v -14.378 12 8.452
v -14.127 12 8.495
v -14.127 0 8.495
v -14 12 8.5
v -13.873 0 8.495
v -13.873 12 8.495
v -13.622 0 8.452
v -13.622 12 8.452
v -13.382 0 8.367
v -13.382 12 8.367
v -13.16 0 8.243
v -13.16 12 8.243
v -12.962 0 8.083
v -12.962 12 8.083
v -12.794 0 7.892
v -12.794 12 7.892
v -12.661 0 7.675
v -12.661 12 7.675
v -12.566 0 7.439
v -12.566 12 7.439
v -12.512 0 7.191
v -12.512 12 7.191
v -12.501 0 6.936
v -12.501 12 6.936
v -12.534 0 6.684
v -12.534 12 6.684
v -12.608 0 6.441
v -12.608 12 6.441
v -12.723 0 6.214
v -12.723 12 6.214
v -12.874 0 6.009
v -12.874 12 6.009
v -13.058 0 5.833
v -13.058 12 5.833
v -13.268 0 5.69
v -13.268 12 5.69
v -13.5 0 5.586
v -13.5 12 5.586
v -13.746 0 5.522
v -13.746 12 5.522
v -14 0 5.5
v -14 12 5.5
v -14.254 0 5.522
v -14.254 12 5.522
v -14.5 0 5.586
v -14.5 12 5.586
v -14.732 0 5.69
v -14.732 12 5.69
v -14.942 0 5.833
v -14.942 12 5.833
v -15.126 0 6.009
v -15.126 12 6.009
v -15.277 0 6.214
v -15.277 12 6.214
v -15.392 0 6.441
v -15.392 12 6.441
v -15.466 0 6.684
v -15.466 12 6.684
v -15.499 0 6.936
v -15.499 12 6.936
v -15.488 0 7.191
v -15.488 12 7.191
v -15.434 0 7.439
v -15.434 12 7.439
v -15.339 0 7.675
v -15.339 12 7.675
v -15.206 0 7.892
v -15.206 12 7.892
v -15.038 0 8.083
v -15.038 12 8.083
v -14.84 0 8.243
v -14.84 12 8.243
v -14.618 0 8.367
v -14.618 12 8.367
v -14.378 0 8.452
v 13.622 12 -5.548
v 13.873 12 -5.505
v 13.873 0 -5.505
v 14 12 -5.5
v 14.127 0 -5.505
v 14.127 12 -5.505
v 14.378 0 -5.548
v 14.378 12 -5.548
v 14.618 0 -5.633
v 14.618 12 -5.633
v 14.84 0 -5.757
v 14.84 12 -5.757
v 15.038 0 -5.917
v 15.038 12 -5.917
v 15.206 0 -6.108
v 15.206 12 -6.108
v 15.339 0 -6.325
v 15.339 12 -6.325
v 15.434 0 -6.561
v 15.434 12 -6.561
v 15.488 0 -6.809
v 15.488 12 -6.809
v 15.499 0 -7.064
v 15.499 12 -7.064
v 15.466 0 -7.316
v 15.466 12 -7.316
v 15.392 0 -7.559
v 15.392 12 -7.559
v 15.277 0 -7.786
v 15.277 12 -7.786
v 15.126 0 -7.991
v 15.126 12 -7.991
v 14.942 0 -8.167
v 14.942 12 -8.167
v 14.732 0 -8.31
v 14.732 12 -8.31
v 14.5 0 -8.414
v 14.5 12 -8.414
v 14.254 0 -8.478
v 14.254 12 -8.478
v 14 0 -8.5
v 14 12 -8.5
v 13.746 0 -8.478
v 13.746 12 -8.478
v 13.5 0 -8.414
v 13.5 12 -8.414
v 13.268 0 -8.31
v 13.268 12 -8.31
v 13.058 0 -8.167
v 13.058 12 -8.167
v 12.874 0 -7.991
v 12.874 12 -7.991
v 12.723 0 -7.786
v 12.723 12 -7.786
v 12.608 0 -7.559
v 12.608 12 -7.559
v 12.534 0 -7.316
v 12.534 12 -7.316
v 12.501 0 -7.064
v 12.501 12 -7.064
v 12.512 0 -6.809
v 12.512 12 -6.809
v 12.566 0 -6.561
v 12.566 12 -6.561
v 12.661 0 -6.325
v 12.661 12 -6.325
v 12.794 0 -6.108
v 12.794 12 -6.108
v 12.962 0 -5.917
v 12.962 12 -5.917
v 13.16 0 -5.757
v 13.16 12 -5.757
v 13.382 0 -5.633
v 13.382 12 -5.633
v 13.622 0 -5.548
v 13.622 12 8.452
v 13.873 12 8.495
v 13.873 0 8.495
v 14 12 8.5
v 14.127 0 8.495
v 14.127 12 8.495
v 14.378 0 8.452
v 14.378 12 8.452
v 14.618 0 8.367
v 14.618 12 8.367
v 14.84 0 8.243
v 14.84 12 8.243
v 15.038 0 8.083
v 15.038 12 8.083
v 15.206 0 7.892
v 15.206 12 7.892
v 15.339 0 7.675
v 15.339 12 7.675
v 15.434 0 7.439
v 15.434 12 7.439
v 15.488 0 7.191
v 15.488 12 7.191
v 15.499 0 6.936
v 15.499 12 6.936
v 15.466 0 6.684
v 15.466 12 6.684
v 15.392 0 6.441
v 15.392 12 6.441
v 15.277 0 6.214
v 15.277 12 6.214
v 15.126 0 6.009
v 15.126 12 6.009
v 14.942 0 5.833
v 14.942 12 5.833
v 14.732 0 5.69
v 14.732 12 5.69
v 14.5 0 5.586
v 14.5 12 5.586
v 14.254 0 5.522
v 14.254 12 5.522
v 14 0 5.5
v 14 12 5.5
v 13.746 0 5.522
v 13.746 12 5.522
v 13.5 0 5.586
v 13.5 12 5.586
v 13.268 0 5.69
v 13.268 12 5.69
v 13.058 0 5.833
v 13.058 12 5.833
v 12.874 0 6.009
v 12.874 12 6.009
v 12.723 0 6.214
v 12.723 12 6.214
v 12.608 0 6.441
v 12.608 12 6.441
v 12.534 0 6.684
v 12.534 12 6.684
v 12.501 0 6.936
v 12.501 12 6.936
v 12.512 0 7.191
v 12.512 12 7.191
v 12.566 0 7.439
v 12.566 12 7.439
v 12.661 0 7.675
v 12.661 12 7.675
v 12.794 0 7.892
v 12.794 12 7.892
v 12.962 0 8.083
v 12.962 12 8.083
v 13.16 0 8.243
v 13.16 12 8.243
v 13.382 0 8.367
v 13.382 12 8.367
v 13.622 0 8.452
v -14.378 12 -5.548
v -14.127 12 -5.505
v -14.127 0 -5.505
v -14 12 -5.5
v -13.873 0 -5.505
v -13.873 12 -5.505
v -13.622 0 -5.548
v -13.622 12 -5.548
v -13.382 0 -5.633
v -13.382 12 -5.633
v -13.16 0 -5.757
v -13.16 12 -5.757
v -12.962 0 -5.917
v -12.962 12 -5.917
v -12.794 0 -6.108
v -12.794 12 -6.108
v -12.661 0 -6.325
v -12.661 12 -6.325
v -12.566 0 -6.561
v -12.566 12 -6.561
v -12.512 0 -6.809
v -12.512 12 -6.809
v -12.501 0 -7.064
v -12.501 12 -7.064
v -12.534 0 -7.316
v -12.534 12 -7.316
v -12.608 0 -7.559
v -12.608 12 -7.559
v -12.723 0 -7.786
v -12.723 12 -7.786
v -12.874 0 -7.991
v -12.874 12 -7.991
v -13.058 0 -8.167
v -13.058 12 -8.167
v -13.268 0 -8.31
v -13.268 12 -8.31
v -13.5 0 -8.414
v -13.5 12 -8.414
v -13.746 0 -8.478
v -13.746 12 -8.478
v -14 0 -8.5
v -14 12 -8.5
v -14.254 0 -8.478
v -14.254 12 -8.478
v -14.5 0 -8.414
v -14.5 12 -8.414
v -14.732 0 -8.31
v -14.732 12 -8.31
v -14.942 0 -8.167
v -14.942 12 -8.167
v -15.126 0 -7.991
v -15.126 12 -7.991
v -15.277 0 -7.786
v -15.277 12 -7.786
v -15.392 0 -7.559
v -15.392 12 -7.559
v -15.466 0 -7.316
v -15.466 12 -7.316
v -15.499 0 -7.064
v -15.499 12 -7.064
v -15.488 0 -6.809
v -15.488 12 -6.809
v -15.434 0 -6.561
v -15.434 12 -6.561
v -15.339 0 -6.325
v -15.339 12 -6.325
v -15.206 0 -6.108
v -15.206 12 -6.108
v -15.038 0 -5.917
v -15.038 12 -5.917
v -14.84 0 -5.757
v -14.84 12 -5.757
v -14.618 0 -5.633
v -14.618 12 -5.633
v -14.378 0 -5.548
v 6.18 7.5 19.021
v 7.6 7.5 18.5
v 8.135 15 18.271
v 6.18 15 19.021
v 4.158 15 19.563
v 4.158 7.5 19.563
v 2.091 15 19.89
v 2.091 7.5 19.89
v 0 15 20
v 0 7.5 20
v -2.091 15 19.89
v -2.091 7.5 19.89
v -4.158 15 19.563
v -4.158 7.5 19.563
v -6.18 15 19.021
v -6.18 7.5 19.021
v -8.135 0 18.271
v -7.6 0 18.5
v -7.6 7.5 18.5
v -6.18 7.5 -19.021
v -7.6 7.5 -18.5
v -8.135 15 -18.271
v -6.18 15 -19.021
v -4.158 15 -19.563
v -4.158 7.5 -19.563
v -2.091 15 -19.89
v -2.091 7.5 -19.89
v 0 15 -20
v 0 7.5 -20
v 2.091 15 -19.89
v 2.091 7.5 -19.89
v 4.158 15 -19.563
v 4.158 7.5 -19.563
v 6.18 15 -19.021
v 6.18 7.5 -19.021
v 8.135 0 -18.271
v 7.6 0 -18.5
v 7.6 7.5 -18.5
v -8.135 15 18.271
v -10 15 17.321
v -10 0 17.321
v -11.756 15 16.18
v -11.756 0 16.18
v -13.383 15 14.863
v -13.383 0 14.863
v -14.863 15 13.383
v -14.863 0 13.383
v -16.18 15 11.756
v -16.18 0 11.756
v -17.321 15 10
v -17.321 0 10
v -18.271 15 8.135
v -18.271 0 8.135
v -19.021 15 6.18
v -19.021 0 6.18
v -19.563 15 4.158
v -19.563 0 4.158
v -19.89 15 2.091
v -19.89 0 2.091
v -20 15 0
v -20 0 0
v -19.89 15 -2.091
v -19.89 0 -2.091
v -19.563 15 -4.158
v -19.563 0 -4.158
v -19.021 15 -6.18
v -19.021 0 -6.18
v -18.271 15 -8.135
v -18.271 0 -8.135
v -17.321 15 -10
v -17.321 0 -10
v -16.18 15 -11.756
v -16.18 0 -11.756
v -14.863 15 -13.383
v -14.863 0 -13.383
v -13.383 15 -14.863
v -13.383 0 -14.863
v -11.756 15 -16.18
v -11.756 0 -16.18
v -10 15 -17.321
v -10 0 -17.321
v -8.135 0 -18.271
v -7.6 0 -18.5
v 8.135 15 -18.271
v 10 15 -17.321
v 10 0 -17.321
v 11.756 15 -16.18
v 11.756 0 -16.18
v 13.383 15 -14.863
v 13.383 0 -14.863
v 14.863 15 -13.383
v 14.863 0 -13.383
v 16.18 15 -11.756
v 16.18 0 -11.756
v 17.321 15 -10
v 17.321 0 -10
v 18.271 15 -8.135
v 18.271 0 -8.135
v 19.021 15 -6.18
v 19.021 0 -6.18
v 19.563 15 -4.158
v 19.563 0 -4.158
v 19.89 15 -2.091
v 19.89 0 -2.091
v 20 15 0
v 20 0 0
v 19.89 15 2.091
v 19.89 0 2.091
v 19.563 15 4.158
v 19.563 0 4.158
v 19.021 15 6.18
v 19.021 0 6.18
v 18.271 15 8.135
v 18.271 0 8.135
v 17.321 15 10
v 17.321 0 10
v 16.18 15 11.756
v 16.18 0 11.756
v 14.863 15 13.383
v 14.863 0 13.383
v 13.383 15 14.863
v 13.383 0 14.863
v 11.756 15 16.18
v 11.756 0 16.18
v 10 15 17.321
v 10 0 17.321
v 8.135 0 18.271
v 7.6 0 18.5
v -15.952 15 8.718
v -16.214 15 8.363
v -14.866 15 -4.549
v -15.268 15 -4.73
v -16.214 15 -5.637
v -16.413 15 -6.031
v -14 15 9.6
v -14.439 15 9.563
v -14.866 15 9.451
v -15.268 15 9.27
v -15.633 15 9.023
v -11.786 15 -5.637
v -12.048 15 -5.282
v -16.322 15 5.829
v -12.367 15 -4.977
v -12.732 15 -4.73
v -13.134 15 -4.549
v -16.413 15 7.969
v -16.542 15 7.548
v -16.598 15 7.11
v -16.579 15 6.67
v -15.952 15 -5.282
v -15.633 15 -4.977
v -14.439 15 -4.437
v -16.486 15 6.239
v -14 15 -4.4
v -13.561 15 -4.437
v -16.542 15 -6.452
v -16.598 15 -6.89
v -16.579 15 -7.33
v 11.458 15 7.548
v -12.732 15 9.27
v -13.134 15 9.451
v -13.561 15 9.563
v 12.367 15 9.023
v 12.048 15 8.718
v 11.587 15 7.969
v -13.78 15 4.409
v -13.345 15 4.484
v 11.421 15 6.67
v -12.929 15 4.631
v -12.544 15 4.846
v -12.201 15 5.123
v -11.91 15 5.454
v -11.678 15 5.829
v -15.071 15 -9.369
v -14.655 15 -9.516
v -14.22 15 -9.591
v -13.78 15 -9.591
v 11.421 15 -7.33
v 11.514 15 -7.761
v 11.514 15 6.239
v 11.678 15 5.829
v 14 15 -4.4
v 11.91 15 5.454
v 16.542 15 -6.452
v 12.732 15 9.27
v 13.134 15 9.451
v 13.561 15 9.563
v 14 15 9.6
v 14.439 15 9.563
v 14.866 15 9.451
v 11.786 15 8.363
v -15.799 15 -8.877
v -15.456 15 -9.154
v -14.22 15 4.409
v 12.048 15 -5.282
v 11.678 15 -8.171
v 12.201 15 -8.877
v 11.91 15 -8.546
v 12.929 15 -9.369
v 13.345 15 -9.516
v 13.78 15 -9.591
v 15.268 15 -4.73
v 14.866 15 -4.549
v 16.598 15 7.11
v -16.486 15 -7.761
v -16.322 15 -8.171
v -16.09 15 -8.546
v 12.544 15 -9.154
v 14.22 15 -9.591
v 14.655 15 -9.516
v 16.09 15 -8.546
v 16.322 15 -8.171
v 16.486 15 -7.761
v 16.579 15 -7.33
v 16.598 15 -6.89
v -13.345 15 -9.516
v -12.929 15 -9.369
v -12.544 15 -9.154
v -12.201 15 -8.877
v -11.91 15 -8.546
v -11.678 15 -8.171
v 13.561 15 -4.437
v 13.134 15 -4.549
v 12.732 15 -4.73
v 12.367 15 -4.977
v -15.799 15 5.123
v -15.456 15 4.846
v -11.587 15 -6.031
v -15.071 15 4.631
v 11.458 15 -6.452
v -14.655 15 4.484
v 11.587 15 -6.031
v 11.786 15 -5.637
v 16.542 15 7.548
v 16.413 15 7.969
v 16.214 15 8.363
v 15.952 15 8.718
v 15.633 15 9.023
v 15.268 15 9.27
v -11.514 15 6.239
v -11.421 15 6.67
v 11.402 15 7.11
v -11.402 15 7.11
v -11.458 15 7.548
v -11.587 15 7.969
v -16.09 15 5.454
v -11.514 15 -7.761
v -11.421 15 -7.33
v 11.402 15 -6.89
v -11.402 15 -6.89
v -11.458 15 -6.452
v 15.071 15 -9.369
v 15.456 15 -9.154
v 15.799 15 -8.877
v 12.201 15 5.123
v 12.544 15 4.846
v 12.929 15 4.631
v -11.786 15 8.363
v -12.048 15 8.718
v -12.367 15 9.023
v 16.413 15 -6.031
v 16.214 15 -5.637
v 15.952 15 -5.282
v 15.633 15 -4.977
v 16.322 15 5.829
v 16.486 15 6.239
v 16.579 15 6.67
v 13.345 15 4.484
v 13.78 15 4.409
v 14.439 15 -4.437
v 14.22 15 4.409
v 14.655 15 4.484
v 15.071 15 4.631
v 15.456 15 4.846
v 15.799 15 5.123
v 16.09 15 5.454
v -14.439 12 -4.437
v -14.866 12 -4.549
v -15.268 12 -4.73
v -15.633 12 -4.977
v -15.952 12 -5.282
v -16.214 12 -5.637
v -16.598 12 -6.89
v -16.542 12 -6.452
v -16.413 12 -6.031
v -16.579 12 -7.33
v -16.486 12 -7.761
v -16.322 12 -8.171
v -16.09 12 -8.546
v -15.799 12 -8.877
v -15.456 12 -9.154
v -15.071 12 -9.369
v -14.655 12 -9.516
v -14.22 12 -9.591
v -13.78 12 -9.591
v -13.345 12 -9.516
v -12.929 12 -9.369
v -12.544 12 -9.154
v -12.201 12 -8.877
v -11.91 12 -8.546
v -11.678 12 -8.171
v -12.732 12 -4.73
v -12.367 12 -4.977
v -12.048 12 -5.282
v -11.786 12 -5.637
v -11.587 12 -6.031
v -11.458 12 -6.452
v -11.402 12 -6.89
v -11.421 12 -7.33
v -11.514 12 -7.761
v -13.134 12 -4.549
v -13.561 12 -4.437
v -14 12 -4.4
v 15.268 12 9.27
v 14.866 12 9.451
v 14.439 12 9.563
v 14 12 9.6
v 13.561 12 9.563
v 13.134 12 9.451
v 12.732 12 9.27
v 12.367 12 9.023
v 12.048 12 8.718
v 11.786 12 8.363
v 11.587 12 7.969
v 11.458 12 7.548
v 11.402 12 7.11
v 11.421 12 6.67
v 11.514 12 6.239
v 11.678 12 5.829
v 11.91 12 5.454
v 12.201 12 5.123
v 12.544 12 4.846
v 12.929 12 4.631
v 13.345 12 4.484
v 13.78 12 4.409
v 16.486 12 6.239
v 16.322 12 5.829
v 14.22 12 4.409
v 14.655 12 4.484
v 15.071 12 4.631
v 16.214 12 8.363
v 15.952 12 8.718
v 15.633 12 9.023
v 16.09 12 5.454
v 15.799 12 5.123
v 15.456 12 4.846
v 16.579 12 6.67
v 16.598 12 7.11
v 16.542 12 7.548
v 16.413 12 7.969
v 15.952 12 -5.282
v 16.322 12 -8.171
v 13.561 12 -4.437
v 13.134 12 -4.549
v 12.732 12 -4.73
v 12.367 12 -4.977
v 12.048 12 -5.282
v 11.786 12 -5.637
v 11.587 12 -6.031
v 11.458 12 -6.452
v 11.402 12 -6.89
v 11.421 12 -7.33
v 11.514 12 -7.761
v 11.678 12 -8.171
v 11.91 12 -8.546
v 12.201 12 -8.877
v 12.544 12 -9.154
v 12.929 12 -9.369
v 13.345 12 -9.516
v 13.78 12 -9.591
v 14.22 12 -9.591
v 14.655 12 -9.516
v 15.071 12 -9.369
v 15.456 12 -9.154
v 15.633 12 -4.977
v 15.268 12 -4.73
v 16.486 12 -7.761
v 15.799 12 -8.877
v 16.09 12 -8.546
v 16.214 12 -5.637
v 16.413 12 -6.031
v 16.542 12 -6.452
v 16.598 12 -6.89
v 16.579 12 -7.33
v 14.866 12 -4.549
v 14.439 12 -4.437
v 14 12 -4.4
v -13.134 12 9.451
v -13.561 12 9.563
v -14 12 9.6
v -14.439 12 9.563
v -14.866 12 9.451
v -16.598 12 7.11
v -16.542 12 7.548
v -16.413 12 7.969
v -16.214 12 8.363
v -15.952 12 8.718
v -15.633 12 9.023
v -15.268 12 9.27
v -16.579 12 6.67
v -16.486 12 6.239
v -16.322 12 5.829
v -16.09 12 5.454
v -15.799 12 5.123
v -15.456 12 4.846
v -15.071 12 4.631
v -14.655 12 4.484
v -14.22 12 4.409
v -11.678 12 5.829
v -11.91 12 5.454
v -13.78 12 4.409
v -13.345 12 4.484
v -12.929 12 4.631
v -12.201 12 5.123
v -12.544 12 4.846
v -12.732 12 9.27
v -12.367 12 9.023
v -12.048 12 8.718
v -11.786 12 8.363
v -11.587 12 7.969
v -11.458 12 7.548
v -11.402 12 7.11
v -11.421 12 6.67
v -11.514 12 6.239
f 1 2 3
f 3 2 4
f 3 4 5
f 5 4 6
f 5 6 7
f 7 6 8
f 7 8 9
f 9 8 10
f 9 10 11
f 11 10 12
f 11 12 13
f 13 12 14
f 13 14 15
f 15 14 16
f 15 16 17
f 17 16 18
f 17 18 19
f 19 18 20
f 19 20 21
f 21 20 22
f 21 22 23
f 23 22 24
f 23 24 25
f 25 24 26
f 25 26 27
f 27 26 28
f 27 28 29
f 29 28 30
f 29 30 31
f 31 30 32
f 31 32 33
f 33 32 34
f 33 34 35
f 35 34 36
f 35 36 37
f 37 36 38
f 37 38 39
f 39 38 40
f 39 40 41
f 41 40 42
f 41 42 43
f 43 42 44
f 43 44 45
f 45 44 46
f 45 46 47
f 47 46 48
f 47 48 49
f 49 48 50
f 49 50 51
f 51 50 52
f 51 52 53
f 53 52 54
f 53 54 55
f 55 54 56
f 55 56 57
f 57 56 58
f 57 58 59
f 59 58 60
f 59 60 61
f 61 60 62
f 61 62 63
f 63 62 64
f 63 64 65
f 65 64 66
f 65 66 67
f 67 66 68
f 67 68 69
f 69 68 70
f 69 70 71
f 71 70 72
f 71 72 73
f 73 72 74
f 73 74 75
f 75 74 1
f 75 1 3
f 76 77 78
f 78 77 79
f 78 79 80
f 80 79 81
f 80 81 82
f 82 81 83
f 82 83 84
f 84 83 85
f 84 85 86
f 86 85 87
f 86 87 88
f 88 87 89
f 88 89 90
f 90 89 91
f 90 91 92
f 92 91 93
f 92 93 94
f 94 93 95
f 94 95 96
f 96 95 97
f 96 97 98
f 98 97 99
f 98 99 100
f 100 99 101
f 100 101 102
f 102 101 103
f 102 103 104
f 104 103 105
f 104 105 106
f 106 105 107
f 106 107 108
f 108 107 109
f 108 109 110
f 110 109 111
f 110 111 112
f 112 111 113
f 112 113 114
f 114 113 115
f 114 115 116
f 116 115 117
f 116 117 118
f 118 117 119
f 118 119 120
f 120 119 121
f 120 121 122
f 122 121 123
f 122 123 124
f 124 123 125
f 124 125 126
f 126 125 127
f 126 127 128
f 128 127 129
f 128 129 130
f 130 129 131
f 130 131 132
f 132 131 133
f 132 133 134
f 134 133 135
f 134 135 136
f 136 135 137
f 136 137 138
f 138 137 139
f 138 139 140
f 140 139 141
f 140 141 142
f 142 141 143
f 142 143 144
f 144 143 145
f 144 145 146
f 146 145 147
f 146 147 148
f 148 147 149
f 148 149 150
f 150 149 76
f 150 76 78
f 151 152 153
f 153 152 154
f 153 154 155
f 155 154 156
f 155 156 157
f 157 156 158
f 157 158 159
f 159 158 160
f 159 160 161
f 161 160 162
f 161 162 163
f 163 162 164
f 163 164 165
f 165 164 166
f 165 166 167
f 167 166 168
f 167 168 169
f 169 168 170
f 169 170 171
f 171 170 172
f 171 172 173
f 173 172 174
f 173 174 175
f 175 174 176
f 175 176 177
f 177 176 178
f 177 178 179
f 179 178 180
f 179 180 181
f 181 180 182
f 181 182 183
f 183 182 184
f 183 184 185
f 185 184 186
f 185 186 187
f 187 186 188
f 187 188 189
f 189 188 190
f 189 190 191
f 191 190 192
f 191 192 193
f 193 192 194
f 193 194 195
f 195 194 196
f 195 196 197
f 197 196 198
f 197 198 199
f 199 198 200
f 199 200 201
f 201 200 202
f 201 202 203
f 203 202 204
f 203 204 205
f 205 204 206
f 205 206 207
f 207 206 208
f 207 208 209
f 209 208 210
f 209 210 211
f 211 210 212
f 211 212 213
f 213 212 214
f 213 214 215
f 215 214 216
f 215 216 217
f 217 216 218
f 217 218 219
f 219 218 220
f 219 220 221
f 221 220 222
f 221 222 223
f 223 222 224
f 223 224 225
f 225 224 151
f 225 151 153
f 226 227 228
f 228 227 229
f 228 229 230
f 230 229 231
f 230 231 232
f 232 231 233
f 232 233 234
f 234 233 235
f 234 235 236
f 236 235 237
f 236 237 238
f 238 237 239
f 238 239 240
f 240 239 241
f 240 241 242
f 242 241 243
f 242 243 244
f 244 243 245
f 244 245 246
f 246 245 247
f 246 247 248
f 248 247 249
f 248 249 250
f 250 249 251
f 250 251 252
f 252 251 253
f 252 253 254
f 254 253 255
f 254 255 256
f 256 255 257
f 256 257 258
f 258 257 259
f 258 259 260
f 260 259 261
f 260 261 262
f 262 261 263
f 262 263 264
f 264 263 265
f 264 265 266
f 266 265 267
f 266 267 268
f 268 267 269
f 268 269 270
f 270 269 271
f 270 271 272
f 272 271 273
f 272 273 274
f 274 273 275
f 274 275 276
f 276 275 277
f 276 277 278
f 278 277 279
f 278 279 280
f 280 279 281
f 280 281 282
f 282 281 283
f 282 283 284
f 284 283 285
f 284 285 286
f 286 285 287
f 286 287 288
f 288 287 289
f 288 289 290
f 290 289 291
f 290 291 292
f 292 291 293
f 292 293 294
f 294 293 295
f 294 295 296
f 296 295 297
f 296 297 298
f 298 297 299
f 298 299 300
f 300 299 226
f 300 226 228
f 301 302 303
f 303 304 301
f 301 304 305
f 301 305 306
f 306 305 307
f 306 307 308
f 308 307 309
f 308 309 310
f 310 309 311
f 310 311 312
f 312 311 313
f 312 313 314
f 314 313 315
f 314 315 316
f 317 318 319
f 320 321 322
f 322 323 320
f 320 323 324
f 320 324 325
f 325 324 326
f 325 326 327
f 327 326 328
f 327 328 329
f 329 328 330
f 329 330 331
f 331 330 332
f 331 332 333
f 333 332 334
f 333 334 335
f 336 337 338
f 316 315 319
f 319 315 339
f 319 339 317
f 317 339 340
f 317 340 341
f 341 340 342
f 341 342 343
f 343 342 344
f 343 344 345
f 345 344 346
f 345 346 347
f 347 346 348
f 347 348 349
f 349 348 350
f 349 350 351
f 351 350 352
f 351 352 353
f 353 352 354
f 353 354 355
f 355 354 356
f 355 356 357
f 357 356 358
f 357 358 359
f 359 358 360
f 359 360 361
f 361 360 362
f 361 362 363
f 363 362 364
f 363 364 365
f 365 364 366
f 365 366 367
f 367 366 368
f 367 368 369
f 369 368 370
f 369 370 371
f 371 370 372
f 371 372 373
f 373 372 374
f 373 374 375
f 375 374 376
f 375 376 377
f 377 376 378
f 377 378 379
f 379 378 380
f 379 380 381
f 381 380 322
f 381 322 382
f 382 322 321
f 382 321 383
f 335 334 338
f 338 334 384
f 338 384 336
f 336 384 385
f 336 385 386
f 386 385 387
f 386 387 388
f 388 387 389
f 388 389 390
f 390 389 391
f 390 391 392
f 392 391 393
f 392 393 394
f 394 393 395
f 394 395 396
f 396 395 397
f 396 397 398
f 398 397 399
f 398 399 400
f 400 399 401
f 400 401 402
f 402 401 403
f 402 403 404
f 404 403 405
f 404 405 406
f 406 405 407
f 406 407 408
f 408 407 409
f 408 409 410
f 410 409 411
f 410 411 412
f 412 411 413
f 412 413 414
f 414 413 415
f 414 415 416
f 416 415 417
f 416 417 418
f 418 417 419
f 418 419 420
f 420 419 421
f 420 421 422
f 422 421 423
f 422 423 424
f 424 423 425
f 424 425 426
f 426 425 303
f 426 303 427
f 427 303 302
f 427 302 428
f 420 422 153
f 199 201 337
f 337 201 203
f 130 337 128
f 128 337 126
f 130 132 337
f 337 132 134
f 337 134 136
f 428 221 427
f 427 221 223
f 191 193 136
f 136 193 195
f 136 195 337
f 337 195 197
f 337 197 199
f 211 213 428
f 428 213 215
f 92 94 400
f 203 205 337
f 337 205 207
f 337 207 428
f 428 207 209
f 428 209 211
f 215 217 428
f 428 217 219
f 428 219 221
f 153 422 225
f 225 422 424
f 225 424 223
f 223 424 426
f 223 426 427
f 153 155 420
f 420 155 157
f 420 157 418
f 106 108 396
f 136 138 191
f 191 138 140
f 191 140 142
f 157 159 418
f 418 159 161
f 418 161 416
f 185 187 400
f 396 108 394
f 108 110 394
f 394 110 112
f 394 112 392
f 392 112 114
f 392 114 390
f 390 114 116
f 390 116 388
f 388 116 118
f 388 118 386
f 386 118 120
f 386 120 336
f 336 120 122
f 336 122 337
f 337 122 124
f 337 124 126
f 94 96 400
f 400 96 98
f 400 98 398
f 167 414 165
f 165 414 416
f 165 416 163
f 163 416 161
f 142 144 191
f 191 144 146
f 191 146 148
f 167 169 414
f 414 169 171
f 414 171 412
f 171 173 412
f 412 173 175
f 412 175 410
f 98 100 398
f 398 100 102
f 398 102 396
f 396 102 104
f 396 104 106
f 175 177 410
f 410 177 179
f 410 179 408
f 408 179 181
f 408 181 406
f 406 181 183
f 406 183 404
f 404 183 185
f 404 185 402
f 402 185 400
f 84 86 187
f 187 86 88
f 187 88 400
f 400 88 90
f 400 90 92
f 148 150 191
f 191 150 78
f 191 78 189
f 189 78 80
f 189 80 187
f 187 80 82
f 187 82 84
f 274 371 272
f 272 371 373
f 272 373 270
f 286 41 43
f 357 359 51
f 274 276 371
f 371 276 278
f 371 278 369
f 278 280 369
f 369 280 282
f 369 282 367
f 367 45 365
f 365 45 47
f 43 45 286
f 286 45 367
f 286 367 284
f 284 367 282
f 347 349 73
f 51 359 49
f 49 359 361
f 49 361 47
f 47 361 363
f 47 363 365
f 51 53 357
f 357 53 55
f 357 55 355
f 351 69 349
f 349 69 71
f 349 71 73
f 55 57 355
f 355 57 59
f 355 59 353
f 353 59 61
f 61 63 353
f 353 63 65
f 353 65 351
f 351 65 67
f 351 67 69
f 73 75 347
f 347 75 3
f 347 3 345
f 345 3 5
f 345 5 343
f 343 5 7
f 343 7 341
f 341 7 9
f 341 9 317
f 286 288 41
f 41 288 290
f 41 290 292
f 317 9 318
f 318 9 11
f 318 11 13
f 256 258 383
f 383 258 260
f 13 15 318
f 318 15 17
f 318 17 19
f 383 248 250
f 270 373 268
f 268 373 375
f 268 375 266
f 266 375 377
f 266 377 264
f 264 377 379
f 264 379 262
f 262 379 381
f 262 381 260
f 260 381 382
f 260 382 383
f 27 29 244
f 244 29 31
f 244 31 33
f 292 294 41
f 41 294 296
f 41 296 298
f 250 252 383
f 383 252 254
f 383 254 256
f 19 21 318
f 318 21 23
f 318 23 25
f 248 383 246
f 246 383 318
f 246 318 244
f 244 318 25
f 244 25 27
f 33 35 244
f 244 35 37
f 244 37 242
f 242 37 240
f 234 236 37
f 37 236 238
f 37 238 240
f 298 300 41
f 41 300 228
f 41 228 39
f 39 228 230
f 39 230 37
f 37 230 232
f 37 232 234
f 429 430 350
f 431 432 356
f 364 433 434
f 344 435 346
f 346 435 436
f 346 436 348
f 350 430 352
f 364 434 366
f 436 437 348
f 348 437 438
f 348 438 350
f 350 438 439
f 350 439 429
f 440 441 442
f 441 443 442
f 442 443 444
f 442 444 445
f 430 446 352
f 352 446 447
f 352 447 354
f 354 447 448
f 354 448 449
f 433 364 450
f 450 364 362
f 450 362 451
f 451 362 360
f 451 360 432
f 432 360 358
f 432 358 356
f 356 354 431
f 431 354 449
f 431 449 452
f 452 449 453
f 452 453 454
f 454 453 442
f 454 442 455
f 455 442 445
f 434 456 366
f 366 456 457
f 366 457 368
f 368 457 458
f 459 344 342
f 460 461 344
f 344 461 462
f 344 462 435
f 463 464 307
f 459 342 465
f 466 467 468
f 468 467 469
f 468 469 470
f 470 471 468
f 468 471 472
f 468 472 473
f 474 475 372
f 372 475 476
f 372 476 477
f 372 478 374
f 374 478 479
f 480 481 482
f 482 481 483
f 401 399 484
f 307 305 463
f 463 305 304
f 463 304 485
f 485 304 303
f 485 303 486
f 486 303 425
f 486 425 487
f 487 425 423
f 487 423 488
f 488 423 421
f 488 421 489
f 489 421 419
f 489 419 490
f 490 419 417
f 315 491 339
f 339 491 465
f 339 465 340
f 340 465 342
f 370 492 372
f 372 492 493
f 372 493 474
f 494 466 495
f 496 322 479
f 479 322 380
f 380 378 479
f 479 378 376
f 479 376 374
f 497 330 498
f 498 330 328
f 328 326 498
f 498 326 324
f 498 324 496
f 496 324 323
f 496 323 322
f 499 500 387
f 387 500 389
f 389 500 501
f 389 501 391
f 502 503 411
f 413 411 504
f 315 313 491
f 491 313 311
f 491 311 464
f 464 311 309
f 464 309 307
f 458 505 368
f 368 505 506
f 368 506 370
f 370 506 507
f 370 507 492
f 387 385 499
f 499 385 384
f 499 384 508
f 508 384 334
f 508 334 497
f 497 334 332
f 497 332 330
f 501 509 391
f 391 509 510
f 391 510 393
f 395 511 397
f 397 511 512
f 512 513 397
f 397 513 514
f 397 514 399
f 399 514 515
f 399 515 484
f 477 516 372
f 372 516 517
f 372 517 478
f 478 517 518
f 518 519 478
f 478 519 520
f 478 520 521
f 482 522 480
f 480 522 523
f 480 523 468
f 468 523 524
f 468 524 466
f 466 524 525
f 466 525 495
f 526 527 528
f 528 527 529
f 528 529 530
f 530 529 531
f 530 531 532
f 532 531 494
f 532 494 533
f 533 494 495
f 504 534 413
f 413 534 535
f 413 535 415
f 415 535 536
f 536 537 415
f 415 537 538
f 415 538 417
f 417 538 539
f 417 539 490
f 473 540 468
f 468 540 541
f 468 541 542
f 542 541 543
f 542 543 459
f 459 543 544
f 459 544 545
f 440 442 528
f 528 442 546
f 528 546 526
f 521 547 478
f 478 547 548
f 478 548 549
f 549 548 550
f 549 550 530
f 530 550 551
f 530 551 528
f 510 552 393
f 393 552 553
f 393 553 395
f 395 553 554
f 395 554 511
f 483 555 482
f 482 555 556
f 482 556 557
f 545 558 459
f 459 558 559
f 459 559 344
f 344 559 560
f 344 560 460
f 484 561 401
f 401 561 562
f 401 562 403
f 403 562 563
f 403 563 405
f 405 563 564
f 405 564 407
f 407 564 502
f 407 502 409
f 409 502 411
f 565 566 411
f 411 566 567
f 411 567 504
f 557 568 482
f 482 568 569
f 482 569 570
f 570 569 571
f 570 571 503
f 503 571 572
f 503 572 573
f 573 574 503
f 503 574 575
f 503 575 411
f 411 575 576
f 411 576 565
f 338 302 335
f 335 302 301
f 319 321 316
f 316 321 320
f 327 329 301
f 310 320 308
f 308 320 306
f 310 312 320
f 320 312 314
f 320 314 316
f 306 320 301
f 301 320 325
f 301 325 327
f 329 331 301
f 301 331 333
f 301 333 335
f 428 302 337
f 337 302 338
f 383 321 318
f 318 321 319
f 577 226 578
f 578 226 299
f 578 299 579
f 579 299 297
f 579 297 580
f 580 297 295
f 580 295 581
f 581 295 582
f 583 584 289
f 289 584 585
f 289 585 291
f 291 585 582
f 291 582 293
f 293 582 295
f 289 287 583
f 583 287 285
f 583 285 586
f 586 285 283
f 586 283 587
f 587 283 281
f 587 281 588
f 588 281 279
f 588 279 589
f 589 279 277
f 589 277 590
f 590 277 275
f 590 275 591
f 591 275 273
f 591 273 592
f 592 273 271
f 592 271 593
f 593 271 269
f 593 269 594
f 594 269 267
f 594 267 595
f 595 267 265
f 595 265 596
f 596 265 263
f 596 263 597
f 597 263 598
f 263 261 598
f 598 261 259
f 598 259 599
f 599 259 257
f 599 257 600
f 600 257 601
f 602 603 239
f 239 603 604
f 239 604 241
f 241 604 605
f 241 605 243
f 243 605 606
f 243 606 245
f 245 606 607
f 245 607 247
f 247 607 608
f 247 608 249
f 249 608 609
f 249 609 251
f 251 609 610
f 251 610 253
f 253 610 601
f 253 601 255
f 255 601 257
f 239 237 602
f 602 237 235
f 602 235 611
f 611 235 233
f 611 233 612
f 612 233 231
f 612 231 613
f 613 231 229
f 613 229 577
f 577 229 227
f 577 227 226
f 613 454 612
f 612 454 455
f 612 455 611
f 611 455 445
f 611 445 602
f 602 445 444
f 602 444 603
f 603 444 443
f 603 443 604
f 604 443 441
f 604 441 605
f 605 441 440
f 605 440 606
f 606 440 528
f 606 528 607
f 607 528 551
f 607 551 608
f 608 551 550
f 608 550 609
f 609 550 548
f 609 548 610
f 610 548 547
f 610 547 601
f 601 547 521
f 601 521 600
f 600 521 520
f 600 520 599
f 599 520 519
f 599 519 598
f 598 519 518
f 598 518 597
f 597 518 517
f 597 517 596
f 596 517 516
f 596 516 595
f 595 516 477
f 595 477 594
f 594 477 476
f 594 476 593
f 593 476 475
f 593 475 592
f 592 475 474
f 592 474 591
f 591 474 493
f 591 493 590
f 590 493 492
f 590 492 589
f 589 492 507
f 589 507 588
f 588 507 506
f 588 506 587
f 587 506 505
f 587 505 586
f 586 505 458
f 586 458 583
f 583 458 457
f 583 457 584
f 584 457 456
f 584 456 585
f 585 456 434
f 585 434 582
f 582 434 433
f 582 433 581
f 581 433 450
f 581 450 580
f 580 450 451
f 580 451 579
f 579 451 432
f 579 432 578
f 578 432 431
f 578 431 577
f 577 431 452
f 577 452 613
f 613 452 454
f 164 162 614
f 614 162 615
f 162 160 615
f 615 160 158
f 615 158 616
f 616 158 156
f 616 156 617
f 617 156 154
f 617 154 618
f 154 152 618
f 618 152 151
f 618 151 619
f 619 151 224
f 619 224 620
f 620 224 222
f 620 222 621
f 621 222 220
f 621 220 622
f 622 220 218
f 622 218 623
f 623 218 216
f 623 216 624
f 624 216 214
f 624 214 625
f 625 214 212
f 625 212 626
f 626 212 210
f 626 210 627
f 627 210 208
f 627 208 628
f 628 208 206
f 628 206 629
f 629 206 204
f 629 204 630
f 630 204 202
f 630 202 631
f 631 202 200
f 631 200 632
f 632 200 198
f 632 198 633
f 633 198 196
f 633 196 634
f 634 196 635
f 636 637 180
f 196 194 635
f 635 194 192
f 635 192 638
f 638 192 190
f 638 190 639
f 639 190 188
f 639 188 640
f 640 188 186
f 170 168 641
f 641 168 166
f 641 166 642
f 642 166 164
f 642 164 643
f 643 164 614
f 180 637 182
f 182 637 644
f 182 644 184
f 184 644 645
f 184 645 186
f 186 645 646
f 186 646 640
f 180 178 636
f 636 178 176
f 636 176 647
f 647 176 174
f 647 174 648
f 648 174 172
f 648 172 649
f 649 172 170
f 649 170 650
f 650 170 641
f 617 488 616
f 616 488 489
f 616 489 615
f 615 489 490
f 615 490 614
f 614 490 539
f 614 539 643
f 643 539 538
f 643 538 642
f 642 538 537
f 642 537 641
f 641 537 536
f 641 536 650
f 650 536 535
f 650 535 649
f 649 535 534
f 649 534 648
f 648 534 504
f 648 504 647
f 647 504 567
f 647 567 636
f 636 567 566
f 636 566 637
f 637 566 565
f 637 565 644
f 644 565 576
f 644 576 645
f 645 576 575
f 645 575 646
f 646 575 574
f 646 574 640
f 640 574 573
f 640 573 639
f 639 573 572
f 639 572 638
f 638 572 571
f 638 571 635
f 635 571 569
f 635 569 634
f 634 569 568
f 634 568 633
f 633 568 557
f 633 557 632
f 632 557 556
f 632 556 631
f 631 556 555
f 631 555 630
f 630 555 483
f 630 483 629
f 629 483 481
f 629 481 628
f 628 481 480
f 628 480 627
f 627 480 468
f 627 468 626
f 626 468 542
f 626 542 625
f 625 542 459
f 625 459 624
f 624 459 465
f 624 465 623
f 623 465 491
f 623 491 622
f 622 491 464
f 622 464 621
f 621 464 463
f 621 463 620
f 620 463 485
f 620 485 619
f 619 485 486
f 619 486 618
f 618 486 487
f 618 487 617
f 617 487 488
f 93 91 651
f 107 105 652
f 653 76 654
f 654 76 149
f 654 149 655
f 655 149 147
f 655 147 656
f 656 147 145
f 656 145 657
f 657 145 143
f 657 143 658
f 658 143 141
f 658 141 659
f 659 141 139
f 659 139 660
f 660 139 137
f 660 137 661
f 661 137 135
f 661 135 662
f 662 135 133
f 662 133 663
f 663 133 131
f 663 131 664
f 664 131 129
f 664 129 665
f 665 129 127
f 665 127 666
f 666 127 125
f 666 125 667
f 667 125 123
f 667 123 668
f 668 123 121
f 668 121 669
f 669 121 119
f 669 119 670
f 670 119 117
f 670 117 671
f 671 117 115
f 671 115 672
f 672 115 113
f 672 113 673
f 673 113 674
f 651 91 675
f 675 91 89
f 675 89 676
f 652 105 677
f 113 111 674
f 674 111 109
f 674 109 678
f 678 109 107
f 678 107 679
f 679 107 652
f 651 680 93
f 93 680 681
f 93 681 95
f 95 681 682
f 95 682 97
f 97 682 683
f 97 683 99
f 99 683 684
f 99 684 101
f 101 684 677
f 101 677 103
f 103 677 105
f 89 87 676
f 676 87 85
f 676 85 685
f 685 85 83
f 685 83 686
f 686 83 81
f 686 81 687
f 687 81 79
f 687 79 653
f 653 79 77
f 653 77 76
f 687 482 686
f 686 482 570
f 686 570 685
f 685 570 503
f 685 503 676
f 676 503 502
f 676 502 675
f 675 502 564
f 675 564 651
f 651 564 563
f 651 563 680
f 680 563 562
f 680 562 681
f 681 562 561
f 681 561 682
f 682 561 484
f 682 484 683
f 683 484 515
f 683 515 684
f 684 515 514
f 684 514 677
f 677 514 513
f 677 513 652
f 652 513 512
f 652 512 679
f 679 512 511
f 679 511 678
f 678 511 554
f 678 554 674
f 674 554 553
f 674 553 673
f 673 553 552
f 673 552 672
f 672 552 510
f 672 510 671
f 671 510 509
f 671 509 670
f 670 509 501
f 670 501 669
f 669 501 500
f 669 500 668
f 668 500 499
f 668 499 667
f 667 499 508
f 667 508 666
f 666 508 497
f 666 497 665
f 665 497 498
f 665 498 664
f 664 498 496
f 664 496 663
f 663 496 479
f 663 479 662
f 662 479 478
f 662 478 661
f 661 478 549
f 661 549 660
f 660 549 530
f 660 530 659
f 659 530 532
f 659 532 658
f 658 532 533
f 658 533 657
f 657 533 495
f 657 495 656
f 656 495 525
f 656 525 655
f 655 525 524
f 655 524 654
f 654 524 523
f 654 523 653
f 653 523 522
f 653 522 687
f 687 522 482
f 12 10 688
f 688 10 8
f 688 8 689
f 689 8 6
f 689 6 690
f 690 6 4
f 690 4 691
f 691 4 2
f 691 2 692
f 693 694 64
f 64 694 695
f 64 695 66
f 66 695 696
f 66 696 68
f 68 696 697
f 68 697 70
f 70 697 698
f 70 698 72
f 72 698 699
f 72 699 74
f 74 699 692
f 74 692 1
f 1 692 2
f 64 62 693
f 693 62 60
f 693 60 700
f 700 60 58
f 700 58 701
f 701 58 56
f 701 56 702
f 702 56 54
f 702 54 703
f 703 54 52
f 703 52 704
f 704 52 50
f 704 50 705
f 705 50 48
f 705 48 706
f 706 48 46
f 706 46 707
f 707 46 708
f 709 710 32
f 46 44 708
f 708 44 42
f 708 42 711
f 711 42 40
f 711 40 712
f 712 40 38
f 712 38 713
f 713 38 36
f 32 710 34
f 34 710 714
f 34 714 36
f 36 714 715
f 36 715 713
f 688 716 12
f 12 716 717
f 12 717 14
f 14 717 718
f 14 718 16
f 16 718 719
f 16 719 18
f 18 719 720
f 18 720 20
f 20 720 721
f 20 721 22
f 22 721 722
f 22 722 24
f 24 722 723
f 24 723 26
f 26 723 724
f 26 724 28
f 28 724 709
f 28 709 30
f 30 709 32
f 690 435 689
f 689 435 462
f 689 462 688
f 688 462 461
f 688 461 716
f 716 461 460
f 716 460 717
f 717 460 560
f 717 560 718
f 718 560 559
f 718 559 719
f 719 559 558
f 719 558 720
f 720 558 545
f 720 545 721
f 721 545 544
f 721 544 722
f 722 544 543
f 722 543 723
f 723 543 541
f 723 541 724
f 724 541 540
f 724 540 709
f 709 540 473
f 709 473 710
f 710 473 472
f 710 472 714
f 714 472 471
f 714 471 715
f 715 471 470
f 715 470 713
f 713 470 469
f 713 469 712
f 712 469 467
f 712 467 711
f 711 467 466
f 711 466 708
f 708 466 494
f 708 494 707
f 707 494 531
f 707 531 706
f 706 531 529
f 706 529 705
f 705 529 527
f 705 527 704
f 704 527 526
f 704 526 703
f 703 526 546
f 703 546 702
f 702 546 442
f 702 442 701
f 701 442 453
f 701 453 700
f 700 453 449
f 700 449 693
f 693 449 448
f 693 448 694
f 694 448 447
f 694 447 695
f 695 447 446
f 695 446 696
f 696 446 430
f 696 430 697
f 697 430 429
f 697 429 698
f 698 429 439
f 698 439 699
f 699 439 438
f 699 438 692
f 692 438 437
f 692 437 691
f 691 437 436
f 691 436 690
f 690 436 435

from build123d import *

# Parameters (mm, degrees)
SKETCH1_R               = 20
BOSS_EXTRUDE1_DEPTH     = 15
CUT_EXTRUDE1_DEPTH      = 25
CUT_EXTRUDE1_DEPTH_BACK = 25
SKETCH2_W               = 15.2
SKETCH2_H               = 7.5
CUT_EXTRUDE2_REACH      = 34.016
SKETCH3_R               = 1.5
SKETCH4_R               = 2.6
CUT_EXTRUDE3_DEPTH      = 3


with BuildPart() as part:
    # Sketch1 → Boss-Extrude1 (new body)
    with BuildSketch(Plane(origin=(0, 0, 0), x_dir=(1, 0, 0), z_dir=(0, 1, 0))):
        Circle(SKETCH1_R)
    extrude(amount=BOSS_EXTRUDE1_DEPTH)

    # Sketch2 → Cut-Extrude1 (cut, two sides: drawn at the far end of the back side and taken through both)
    with BuildSketch(Plane.XY.offset(-CUT_EXTRUDE1_DEPTH_BACK)):
        with Locations((0, 3.75)):
            Rectangle(SKETCH2_W, SKETCH2_H)
    extrude(amount=CUT_EXTRUDE1_DEPTH + CUT_EXTRUDE1_DEPTH_BACK, mode=Mode.SUBTRACT)

    # Sketch3 → Cut-Extrude2 (cut, up to next)
    with BuildSketch(Plane(origin=(0, 0, 0), x_dir=(-1, 0, 0), z_dir=(0, -1, 0)), mode=Mode.PRIVATE) as cut_extrude2_sk1:
        with Locations((14, -7)):
            Circle(SKETCH3_R)
    cut_extrude2_tool1 = extrude(cut_extrude2_sk1.sketch, amount=-CUT_EXTRUDE2_REACH, mode=Mode.PRIVATE) & part.part
    # Sketch3 → Cut-Extrude2 (cut, up to next)
    with BuildSketch(Plane(origin=(0, 0, 0), x_dir=(-1, 0, 0), z_dir=(0, -1, 0)), mode=Mode.PRIVATE) as cut_extrude2_sk2:
        with Locations((14, 7)):
            Circle(SKETCH3_R)
    cut_extrude2_tool2 = extrude(cut_extrude2_sk2.sketch, amount=-CUT_EXTRUDE2_REACH, mode=Mode.PRIVATE) & part.part
    # Sketch3 → Cut-Extrude2 (cut, up to next)
    with BuildSketch(Plane(origin=(0, 0, 0), x_dir=(-1, 0, 0), z_dir=(0, -1, 0)), mode=Mode.PRIVATE) as cut_extrude2_sk3:
        with Locations((-14, -7)):
            Circle(SKETCH3_R)
    cut_extrude2_tool3 = extrude(cut_extrude2_sk3.sketch, amount=-CUT_EXTRUDE2_REACH, mode=Mode.PRIVATE) & part.part
    # Sketch3 → Cut-Extrude2 (cut, up to next)
    with BuildSketch(Plane(origin=(0, 0, 0), x_dir=(-1, 0, 0), z_dir=(0, -1, 0)), mode=Mode.PRIVATE) as cut_extrude2_sk4:
        with Locations((-14, 7)):
            Circle(SKETCH3_R)
    cut_extrude2_tool4 = extrude(cut_extrude2_sk4.sketch, amount=-CUT_EXTRUDE2_REACH, mode=Mode.PRIVATE) & part.part
    add(cut_extrude2_tool1.solids().sort_by_distance((-14, 0, 7))[0], mode=Mode.SUBTRACT)
    add(cut_extrude2_tool2.solids().sort_by_distance((-14, 0, -7))[0], mode=Mode.SUBTRACT)
    add(cut_extrude2_tool3.solids().sort_by_distance((14, 0, 7))[0], mode=Mode.SUBTRACT)
    add(cut_extrude2_tool4.solids().sort_by_distance((14, 0, -7))[0], mode=Mode.SUBTRACT)

    # Sketch4 → Cut-Extrude3 (cut)
    with BuildSketch(Plane(origin=(0, 15, 0), x_dir=(1, 0, 0), z_dir=(0, 1, 0))):
        with Locations((-14, 7)):
            Circle(SKETCH4_R)
        with Locations((-14, -7)):
            Circle(SKETCH4_R)
        with Locations((14, 7)):
            Circle(SKETCH4_R)
        with Locations((14, -7)):
            Circle(SKETCH4_R)
    extrude(amount=-CUT_EXTRUDE3_DEPTH, mode=Mode.SUBTRACT)


solid = part.part
